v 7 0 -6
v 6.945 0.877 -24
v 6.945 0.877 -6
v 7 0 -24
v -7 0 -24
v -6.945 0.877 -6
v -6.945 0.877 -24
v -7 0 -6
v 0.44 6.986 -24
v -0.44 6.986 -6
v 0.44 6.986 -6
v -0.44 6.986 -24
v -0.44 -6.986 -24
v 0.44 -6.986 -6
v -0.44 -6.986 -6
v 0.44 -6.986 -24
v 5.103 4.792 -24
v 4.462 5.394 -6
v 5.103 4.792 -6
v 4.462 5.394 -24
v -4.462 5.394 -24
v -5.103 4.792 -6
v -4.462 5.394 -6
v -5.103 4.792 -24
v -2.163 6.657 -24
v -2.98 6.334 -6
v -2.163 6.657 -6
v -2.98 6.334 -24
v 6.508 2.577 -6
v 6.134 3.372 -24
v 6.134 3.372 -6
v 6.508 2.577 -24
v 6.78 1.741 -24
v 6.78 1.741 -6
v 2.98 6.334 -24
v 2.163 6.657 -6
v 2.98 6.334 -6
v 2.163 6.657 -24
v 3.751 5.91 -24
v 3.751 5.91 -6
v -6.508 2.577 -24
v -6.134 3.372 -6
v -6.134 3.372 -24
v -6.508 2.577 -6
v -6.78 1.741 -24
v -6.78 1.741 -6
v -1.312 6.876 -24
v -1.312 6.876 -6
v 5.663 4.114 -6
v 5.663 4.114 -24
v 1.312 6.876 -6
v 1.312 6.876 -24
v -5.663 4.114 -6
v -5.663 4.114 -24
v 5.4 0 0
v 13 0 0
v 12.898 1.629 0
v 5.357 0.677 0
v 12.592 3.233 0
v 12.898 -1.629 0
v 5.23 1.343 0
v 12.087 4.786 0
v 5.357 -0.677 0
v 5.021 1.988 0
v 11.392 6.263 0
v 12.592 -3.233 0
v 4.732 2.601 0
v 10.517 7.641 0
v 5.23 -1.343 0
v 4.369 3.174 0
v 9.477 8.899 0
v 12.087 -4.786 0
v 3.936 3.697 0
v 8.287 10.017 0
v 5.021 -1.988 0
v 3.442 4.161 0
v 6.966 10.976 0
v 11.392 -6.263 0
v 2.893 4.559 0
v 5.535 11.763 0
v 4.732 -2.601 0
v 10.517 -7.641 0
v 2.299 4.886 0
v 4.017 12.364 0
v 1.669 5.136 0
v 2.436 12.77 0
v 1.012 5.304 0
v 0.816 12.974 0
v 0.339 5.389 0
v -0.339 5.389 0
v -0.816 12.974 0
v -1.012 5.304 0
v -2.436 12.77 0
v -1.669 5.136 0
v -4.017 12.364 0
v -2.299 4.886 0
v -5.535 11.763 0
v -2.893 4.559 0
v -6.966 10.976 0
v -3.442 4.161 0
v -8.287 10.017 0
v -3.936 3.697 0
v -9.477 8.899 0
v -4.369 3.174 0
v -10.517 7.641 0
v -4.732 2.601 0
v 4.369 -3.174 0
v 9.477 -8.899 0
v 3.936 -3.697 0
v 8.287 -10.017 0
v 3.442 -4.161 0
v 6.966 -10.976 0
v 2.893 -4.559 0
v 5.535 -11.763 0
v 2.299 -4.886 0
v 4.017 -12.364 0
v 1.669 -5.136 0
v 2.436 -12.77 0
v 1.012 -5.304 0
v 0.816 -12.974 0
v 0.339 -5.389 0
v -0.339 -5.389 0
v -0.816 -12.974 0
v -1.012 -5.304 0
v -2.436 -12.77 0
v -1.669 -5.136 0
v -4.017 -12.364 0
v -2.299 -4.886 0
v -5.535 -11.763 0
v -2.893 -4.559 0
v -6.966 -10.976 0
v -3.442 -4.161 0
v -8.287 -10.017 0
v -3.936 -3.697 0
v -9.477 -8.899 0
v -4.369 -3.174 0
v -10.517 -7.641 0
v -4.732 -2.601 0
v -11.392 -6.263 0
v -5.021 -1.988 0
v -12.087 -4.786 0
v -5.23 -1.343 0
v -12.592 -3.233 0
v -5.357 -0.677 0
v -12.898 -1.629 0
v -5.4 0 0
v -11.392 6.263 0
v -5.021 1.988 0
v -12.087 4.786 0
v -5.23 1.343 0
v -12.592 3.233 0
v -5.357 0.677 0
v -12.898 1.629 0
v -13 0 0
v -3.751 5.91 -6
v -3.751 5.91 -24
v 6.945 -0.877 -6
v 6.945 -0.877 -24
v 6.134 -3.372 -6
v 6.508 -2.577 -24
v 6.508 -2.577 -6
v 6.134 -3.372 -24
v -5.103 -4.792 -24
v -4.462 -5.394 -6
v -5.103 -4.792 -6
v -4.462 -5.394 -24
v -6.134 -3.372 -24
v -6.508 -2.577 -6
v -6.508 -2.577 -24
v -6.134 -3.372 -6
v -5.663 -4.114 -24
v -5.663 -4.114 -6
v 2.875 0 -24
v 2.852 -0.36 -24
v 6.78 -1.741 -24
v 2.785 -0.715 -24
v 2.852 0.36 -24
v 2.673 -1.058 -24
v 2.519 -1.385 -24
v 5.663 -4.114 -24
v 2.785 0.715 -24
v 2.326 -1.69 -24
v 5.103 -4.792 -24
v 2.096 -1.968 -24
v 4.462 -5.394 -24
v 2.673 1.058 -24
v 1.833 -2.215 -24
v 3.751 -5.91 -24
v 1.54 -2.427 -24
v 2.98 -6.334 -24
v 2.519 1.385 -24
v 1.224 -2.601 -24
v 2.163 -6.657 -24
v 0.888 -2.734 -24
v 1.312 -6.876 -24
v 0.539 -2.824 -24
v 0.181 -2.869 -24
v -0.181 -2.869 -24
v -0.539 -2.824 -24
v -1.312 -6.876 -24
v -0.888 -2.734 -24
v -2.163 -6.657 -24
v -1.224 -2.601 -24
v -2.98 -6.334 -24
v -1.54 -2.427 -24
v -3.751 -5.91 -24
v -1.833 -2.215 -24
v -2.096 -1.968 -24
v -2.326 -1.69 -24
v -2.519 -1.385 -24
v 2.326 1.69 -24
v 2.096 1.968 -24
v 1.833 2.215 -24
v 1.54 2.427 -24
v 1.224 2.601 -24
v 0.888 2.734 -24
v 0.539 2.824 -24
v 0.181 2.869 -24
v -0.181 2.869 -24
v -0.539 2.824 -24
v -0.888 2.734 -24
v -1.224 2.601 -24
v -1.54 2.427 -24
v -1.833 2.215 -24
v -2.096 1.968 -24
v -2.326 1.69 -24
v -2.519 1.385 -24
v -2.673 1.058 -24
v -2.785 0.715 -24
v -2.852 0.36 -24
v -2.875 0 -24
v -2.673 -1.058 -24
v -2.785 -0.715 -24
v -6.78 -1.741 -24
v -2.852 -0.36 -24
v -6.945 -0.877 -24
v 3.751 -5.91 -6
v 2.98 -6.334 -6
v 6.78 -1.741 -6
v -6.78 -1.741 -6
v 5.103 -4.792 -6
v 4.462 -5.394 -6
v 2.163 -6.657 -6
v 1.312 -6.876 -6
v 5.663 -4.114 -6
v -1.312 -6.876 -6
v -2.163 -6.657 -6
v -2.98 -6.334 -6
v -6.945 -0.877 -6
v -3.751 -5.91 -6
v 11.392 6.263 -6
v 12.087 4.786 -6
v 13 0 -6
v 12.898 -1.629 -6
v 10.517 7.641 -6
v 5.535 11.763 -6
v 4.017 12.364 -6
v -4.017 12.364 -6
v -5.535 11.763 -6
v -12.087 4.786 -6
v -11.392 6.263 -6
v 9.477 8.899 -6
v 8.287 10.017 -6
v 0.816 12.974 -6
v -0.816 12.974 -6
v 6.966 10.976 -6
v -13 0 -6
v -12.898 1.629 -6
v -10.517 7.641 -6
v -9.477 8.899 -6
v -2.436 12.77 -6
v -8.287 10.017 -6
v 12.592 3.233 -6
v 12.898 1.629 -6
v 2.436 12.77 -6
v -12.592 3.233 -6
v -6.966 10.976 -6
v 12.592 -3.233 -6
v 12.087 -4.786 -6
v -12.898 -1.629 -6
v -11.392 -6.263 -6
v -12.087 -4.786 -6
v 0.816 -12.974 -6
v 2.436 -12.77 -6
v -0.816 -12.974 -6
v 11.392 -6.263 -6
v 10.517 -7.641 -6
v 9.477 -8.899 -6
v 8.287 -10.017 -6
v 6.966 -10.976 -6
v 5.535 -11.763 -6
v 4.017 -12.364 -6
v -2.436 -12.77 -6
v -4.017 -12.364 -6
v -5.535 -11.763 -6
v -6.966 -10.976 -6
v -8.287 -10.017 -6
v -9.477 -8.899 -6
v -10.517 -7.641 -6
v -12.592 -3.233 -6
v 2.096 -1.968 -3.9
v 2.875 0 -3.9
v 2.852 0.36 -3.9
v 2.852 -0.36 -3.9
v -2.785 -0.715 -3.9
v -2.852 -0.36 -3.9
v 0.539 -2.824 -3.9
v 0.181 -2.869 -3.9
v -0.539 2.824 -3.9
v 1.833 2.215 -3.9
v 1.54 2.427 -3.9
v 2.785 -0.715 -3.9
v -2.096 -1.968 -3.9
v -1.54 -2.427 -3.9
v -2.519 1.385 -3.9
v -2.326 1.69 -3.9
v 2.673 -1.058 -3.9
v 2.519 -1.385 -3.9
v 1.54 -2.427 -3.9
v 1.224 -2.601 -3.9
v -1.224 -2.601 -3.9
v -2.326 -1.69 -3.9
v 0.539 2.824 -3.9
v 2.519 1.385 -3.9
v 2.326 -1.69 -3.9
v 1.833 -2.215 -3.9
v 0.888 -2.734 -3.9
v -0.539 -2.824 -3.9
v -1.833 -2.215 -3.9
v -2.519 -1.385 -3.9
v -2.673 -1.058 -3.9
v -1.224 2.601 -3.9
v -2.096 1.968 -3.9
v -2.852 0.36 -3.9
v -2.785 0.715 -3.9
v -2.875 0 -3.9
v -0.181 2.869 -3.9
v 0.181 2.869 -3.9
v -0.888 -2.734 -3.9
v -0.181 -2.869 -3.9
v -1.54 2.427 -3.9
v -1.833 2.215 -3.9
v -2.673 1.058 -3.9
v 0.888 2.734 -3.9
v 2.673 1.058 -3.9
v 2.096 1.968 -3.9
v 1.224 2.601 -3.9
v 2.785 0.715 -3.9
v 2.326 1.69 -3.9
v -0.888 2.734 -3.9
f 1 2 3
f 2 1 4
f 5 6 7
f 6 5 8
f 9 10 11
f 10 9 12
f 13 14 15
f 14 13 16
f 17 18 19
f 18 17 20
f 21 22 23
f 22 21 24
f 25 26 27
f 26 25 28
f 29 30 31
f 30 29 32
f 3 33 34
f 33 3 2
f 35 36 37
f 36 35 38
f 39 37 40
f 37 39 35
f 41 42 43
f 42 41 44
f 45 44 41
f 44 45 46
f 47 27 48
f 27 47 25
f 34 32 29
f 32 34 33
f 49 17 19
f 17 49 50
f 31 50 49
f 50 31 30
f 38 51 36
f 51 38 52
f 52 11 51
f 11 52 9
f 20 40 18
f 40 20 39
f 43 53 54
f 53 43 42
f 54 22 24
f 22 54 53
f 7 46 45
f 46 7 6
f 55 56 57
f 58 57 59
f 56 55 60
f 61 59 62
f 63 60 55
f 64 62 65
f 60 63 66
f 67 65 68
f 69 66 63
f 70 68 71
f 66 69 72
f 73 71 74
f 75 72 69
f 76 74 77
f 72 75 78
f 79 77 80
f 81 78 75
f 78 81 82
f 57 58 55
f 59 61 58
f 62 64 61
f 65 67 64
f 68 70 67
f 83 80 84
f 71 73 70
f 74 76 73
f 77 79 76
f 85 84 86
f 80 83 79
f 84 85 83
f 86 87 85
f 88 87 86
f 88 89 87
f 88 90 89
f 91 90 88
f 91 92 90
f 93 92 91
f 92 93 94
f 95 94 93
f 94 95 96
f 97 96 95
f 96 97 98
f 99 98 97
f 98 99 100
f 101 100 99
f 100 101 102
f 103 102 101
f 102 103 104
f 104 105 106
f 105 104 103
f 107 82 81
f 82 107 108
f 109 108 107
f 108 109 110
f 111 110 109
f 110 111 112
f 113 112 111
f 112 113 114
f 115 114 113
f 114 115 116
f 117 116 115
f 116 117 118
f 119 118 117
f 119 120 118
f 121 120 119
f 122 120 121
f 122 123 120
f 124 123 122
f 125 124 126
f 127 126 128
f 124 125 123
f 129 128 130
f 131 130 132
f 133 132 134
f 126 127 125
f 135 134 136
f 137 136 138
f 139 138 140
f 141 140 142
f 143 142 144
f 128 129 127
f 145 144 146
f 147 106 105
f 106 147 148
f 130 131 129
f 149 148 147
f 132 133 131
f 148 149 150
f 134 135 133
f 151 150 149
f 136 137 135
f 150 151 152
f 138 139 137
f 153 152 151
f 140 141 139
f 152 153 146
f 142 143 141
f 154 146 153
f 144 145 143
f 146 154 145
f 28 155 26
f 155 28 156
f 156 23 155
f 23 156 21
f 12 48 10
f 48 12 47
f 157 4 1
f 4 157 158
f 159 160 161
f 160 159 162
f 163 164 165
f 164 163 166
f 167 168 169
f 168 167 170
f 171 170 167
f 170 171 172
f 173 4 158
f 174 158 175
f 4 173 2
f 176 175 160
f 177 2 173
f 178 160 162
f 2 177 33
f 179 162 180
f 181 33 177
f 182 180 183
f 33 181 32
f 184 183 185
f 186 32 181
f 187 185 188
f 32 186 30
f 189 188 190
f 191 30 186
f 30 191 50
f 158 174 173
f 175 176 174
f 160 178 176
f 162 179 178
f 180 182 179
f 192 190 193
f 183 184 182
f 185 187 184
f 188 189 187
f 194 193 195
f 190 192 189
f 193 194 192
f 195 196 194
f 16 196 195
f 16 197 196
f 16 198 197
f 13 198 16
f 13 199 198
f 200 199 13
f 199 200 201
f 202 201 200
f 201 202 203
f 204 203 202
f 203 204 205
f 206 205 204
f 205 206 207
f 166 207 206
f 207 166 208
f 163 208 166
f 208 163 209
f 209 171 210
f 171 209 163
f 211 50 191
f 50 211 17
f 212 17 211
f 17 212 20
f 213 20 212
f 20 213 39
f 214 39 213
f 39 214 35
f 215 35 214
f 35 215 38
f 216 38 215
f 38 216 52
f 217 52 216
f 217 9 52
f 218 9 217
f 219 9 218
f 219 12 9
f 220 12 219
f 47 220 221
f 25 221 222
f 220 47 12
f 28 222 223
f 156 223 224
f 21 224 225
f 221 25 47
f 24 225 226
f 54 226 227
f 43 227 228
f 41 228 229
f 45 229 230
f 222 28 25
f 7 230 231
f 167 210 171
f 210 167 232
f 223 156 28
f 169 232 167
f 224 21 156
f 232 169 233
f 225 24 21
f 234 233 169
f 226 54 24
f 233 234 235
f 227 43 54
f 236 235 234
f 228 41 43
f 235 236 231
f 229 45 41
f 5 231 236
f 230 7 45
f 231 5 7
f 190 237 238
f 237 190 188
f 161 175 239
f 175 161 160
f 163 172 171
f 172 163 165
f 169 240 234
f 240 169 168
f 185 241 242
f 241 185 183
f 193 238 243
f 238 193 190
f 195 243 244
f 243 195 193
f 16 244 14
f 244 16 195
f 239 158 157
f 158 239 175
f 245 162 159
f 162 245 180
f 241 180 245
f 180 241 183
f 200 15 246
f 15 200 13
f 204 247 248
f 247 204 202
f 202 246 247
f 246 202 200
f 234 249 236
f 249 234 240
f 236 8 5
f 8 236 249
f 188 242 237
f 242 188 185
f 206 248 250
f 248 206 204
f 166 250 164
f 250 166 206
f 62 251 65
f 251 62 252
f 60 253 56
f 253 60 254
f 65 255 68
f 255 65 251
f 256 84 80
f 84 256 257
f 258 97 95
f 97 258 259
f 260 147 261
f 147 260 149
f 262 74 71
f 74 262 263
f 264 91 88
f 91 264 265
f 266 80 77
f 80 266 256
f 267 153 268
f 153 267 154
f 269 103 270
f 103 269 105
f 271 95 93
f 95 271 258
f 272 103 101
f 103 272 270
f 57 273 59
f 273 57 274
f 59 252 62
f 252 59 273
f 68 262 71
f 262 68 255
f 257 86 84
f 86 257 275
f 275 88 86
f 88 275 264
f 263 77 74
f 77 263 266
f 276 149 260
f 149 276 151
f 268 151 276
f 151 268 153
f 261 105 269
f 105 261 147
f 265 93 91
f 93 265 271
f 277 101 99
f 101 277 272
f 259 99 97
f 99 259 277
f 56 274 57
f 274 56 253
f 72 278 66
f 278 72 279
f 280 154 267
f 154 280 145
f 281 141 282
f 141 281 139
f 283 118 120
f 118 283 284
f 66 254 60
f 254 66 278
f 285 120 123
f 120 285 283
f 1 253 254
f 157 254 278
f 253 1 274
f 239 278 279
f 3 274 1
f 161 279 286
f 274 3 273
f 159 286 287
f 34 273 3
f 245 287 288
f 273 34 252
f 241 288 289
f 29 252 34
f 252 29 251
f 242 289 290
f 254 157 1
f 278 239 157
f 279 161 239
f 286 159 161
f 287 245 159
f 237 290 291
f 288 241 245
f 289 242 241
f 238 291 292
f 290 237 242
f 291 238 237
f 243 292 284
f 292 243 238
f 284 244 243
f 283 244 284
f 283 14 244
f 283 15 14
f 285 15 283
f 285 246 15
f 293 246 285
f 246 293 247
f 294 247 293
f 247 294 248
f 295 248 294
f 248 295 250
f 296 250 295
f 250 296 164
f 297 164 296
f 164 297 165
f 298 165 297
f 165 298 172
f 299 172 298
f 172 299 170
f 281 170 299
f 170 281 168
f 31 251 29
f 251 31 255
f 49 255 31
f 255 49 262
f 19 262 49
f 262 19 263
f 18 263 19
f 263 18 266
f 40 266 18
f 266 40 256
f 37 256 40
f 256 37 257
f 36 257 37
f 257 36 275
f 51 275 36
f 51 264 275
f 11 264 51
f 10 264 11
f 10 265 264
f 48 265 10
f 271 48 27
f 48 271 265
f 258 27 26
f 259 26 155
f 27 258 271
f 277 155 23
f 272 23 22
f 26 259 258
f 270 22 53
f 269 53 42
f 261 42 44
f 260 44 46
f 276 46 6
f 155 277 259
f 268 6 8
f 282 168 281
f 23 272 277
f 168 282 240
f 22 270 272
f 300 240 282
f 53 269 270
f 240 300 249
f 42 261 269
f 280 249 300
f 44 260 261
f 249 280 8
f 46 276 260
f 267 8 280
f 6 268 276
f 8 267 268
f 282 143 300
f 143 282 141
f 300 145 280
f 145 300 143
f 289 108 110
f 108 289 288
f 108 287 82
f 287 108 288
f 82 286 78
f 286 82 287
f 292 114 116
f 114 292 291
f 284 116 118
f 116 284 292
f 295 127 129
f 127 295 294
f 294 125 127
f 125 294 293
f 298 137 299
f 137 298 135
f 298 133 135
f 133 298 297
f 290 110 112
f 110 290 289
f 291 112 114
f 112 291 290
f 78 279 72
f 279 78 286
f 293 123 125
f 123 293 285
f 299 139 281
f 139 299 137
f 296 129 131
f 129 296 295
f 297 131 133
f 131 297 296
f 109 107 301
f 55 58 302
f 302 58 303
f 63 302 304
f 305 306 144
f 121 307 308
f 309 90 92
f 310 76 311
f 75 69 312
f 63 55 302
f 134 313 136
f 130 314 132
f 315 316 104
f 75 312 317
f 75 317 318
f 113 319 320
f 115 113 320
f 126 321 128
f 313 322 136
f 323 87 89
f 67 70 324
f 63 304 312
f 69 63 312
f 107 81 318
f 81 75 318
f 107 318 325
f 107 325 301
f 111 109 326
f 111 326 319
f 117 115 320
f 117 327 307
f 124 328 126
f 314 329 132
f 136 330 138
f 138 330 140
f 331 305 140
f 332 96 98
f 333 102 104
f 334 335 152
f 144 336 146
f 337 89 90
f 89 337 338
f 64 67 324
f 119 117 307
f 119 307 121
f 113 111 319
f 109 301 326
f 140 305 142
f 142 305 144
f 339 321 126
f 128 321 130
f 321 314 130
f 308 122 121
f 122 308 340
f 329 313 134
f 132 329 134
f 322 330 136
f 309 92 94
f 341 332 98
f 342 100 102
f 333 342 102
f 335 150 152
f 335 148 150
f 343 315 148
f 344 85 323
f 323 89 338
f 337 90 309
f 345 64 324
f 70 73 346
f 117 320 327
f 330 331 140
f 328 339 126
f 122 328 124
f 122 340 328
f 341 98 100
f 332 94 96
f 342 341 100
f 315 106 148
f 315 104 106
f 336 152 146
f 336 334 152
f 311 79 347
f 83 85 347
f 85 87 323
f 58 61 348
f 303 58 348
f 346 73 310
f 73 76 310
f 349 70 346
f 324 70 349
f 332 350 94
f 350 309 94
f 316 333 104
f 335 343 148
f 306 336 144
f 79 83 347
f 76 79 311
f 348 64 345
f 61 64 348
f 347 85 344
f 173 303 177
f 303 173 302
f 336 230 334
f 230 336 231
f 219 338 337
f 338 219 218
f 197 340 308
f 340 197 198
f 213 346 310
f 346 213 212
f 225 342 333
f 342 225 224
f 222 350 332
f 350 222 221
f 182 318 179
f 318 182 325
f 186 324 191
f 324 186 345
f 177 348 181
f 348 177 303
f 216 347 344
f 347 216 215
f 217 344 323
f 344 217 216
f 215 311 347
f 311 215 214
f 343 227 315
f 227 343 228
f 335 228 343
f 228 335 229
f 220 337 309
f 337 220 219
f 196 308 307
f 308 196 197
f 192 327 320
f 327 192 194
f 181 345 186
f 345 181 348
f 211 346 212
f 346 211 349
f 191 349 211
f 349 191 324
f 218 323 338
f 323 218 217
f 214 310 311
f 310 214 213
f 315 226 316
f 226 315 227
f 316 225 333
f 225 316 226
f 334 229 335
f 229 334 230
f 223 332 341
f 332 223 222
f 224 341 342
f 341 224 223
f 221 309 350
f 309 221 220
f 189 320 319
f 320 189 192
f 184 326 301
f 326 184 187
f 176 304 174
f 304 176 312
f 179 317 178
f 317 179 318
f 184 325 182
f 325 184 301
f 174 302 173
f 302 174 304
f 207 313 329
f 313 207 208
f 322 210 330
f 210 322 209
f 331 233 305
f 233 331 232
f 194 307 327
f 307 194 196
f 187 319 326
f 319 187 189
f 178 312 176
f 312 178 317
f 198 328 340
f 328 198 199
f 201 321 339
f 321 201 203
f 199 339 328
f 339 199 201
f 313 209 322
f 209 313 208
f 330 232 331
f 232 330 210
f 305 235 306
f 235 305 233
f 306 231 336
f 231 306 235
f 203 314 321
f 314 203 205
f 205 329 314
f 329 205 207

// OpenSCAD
$fn = 50;


difference() {
	union() {
		translate(v = [0, 0, -24.0000000000]) {
			cylinder(h = 24, r = 7.0000000000);
		}
		translate(v = [0, 0, -6.0000000000]) {
			cylinder(h = 6, r = 13.0000000000);
		}
	}
	union() {
		translate(v = [0, 0, 0]) {
			rotate(a = [0, 0, 0]) {
				difference() {
					union() {
						#translate(v = [0, 0, -24.0000000000]) {
							cylinder(h = 24, r = 2.6000000000);
						}
						#translate(v = [0, 0, -3.9000000000]) {
							cylinder(h = 3.9000000000, r = 7.0000000000, r1 = 2.8750000000, r2 = 5.4000000000);
						}
						#translate(v = [0, 0, -24.0000000000]) {
							cylinder(h = 24, r = 2.8750000000);
						}
						#translate(v = [0, 0, -24.0000000000]) {
							cylinder(h = 24, r = 2.6000000000);
						}
					}
					union();
				}
			}
		}
	}
}
